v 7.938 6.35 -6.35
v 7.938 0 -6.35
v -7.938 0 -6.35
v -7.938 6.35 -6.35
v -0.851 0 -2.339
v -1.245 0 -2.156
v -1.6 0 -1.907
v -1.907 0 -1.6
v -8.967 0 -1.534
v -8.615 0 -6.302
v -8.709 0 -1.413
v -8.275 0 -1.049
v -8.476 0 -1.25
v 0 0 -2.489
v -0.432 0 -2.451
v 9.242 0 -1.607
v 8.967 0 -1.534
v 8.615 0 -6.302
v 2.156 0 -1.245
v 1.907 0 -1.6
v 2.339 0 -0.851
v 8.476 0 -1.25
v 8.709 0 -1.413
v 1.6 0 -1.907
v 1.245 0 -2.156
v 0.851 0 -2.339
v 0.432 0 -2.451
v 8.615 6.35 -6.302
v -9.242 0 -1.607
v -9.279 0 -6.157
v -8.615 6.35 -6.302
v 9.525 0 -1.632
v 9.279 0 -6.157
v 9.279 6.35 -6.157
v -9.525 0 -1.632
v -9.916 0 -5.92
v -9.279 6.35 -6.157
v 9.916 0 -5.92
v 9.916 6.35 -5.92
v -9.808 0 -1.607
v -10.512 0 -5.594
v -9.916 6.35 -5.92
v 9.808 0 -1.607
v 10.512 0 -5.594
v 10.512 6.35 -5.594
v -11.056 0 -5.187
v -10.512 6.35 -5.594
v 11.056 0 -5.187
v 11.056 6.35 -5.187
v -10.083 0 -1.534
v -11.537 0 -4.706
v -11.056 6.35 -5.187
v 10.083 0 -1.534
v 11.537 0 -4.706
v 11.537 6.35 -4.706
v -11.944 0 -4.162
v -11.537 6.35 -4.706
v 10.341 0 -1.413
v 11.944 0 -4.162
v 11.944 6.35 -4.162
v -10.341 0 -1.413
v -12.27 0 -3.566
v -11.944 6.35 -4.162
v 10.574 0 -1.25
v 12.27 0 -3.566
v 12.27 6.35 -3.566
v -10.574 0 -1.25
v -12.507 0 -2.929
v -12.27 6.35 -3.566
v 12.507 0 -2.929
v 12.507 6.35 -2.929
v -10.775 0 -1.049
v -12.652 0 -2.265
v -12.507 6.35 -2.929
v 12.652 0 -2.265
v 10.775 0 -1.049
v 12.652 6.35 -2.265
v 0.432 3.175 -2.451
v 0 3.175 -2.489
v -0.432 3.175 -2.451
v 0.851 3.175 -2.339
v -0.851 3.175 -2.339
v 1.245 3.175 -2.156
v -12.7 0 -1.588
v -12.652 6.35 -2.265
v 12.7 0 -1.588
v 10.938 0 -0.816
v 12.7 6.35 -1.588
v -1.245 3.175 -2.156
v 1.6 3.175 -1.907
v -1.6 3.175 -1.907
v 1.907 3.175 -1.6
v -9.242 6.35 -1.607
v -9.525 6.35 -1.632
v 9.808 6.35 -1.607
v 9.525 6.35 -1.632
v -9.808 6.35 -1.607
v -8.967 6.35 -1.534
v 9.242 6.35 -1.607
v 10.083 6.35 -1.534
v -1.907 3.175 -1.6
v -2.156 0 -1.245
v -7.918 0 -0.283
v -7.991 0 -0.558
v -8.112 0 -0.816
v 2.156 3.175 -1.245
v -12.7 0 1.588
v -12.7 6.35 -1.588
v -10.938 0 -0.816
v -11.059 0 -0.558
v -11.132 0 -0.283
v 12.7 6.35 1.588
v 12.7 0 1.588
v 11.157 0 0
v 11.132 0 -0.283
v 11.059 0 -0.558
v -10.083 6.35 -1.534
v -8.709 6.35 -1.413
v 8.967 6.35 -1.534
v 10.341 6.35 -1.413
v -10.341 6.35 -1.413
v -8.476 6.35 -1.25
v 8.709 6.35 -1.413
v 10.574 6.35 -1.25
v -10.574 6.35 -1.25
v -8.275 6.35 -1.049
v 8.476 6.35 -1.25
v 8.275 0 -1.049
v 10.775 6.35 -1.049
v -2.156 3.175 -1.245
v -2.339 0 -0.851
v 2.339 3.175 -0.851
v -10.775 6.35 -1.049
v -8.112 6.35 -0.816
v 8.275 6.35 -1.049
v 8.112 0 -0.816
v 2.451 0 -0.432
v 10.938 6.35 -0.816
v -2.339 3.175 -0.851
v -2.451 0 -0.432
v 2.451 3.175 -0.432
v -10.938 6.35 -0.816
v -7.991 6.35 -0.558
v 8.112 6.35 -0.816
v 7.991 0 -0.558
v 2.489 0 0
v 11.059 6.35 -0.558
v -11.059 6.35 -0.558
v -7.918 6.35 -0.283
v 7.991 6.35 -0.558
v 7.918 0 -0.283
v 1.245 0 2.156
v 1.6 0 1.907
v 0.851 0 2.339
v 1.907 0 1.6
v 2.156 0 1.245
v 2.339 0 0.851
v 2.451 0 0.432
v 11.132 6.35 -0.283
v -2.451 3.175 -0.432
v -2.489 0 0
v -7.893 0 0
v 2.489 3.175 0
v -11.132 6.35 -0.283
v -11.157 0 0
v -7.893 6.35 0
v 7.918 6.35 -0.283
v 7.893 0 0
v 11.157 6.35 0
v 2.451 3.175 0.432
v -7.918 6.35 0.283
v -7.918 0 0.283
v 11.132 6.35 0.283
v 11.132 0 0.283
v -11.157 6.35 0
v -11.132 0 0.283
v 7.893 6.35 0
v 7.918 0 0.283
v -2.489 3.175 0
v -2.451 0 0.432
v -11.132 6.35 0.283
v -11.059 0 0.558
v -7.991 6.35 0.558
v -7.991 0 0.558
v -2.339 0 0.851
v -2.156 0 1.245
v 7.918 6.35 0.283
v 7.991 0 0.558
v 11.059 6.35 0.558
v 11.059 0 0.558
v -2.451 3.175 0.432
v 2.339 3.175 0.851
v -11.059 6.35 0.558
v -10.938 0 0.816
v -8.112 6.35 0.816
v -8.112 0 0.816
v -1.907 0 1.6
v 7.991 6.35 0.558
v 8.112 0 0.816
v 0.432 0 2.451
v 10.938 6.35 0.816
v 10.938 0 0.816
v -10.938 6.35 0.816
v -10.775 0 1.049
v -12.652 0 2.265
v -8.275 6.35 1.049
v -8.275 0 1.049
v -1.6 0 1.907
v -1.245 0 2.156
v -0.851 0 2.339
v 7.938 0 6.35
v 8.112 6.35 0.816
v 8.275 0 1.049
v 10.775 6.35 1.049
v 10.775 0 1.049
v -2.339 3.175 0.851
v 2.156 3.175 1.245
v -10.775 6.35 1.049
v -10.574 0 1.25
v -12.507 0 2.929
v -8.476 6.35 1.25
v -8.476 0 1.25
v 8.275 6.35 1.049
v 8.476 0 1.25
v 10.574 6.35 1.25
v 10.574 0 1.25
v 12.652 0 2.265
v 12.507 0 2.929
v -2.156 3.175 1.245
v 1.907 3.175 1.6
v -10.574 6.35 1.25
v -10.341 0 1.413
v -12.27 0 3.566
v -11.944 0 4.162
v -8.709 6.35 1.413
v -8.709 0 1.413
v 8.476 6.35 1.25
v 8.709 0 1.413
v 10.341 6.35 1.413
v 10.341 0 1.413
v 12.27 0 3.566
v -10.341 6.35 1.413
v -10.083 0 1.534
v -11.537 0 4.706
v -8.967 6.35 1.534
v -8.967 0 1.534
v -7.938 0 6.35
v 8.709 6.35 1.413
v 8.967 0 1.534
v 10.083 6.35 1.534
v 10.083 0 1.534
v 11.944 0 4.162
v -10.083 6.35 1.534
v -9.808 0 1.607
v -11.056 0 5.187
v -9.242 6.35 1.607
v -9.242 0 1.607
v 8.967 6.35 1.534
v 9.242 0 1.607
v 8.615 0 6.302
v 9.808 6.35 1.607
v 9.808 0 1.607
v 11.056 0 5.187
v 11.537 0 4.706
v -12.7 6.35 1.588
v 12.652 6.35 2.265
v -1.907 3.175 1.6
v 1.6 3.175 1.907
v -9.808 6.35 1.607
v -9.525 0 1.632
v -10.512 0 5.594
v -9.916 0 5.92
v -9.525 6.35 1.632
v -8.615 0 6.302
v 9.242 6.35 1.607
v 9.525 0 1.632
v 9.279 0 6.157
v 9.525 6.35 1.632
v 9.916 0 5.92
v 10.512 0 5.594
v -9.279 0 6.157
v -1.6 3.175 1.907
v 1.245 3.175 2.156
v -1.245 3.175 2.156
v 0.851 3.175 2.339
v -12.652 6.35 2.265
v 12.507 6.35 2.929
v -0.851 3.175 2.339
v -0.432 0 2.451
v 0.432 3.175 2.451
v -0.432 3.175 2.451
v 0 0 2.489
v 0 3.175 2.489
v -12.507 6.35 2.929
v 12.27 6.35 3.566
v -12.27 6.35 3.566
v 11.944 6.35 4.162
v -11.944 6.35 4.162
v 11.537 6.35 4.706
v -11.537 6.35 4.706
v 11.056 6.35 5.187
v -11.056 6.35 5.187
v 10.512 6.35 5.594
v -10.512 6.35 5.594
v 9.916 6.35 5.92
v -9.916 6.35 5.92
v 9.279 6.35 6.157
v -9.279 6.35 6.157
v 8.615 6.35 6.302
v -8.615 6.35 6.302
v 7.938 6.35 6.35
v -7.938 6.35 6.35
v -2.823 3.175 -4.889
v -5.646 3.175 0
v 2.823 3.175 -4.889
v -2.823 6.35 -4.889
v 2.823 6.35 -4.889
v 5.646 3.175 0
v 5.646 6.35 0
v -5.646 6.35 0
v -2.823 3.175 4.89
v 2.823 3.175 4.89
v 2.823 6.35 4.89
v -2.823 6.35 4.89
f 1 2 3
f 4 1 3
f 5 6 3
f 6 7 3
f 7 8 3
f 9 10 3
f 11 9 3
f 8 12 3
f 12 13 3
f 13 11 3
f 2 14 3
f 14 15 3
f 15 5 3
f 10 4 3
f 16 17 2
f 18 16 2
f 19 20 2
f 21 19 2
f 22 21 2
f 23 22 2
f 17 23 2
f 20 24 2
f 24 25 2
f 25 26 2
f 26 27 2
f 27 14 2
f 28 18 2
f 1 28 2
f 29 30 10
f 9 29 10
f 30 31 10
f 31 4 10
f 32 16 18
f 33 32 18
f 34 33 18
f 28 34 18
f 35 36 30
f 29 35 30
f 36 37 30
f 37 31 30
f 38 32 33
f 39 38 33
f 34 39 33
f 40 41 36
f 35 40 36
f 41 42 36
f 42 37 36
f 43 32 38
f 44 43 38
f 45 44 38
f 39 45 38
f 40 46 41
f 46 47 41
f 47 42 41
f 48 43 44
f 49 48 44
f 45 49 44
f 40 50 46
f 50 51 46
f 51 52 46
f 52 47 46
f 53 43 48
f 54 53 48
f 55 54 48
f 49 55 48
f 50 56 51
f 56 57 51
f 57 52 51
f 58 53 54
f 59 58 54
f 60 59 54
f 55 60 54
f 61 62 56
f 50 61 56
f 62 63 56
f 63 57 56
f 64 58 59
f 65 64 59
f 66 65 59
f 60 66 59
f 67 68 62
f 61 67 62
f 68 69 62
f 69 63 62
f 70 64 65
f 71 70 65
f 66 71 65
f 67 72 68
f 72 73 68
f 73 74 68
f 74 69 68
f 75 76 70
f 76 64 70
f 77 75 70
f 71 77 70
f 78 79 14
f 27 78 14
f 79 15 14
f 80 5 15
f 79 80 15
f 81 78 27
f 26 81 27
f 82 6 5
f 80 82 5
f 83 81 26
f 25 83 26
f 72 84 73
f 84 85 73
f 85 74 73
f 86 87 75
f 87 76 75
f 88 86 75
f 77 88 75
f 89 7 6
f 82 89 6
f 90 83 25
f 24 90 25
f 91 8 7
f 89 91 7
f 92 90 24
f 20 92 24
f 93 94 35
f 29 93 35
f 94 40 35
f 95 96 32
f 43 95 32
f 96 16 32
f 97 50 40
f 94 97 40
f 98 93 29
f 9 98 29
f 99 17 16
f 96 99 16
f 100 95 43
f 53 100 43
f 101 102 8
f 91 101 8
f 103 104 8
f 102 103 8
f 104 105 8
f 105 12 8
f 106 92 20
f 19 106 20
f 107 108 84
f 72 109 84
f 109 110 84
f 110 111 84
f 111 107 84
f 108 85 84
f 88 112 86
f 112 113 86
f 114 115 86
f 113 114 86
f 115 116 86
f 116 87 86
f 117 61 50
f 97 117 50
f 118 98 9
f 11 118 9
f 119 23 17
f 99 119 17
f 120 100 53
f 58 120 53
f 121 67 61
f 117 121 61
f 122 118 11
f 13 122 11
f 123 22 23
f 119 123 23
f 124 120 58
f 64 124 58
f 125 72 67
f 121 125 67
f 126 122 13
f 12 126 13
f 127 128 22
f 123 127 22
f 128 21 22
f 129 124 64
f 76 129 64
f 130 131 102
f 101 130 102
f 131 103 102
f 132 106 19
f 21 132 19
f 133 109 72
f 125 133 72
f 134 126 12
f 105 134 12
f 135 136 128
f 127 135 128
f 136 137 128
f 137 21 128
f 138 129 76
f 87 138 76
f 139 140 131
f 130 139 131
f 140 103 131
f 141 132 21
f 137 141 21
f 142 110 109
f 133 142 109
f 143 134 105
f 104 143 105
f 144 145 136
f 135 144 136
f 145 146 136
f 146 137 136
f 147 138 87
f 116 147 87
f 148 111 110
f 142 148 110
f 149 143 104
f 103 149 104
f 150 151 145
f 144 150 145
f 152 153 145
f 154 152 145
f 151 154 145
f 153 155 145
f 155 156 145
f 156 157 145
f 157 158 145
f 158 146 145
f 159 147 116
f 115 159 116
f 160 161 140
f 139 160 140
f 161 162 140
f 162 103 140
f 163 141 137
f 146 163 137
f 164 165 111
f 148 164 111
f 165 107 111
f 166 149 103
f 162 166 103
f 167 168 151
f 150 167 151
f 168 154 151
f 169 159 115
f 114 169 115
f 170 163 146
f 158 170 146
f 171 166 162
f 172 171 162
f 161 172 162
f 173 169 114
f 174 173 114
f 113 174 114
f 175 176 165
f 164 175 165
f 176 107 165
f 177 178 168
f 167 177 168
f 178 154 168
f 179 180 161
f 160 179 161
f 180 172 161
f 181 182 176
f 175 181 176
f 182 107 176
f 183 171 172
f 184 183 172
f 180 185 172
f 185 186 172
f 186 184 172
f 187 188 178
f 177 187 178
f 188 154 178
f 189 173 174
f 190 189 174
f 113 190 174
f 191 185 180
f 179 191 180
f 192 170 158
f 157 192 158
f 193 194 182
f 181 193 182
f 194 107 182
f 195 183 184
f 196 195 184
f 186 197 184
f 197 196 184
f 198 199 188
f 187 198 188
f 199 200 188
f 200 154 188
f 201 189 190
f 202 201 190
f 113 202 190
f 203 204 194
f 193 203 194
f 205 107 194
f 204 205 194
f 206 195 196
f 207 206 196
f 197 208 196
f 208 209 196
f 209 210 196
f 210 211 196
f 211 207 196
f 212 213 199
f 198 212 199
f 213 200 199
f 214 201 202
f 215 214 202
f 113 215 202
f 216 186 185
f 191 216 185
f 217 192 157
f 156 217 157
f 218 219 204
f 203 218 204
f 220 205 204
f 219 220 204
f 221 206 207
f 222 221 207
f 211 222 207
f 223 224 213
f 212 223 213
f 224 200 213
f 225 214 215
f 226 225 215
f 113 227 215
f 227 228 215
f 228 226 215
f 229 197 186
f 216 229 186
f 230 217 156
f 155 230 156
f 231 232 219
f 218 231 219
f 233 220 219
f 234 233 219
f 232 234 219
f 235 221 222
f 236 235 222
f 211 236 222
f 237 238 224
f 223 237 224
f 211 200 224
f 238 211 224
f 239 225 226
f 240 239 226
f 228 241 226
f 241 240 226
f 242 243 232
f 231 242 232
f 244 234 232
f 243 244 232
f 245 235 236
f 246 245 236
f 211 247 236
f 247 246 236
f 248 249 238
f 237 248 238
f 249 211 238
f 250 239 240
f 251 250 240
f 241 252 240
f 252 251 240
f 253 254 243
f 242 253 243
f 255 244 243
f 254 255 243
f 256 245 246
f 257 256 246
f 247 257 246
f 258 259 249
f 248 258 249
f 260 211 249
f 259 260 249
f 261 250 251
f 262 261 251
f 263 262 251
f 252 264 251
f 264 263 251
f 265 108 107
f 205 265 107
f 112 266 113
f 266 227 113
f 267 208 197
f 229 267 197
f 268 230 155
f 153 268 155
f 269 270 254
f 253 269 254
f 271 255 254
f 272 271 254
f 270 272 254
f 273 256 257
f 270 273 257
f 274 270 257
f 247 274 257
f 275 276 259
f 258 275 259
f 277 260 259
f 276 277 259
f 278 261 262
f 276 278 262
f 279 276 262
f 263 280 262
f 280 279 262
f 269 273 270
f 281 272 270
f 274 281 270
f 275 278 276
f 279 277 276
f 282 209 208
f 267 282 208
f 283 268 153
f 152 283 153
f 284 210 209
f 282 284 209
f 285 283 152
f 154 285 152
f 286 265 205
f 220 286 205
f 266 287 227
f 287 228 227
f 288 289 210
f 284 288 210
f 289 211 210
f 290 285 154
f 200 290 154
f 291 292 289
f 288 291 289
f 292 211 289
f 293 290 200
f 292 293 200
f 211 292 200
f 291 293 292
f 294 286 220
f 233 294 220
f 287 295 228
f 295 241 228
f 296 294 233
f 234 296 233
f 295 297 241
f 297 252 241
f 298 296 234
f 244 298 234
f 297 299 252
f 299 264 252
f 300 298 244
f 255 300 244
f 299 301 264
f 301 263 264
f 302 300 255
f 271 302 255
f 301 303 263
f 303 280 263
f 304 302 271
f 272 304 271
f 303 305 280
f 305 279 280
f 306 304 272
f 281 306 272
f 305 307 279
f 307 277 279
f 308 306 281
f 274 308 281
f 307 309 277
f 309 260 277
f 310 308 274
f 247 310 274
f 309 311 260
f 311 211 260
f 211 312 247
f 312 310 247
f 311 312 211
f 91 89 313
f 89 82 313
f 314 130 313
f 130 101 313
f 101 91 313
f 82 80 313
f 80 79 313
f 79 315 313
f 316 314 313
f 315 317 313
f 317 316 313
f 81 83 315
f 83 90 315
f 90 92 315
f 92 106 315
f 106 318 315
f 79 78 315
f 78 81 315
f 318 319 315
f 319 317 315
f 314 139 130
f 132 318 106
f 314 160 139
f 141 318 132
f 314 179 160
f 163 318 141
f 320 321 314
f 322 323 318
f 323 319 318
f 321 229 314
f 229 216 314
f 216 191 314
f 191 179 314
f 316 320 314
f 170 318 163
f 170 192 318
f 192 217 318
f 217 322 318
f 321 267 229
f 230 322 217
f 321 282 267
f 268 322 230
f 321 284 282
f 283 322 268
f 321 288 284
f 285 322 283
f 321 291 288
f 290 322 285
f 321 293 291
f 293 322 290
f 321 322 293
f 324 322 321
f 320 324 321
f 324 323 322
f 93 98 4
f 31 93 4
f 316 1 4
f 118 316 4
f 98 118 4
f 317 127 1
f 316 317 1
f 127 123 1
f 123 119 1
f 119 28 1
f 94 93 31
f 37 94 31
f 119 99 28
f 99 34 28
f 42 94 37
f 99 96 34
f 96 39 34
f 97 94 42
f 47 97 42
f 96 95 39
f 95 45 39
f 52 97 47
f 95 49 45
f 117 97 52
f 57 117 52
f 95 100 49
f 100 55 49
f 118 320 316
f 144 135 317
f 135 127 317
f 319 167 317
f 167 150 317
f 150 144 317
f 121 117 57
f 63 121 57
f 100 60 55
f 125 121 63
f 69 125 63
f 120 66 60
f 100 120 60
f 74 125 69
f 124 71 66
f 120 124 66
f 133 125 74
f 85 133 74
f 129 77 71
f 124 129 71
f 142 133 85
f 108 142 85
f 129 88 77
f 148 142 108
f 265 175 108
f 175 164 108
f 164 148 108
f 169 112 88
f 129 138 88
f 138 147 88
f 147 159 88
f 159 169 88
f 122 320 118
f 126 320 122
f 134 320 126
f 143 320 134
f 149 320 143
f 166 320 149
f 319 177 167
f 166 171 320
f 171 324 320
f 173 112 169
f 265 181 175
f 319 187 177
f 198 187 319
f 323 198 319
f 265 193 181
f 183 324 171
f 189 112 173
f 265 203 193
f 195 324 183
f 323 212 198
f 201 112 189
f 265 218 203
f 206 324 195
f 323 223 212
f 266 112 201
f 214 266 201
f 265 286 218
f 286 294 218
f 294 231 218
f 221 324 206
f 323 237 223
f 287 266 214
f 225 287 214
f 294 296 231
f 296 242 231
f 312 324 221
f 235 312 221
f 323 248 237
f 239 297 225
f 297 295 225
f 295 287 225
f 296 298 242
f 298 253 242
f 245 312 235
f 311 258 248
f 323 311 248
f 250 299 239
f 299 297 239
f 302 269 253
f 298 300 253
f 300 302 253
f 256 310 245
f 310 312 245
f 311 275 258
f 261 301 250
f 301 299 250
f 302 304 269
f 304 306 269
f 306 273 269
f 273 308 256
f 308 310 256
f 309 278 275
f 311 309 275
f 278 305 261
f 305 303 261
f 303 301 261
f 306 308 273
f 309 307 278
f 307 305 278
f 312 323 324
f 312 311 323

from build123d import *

# Parameters (mm, degrees)
SKETCH1_W           = 25.4
SKETCH1_H           = 12.7
SKETCH1_R           = 1.63195
SKETCH1_R_2         = 2.4892
BOSS_EXTRUDE1_DEPTH = 3.175
SKETCH1_3_W         = 25.4
SKETCH1_3_H         = 12.7
SKETCH1_3_R         = 1.63195
BOSS_EXTRUDE2_DEPTH = 6.35
FILLET1_R           = 4.7625


with BuildPart() as part:
    # Sketch1 → Boss-Extrude1 (new body)
    # profile 1 of 2: a face of its own
    with BuildSketch(Plane(origin=(0, 0, 0), x_dir=(1, 0, 0), z_dir=(0, 1, 0))):
        Rectangle(SKETCH1_W, SKETCH1_H)
        with Locations(Location((9.525, 0, 0), (0, 0, 270))):
            Circle(SKETCH1_R, mode=Mode.SUBTRACT)
        with Locations(Location((-9.525, 0, 0), (0, 0, 270))):
            Circle(SKETCH1_R, mode=Mode.SUBTRACT)
        Polygon((2.822954141, -4.8895), (5.645908282, 0), (2.822954141, 4.8895), (-2.822954141, 4.8895), (-5.645908282, 0), (-2.822954141, -4.8895), align=None, mode=Mode.SUBTRACT)
    # profile 2 of 2: a face of its own
    with BuildSketch(Plane(origin=(0, 0, 0), x_dir=(1, 0, 0), z_dir=(0, 1, 0))):
        Polygon((-2.822954141, -4.8895), (2.822954141, -4.8895), (5.645908282, 0), (2.822954141, 4.8895), (-2.822954141, 4.8895), (-5.645908282, 0), align=None)
        with Locations(Location((0, 0, 0), (0, 0, 270))):
            Circle(SKETCH1_R_2, mode=Mode.SUBTRACT)
    extrude(amount=BOSS_EXTRUDE1_DEPTH)

    # Sketch1<3> → Boss-Extrude2 (add)
    with BuildSketch(Plane(origin=(0, 0, 0), x_dir=(1, 0, 0), z_dir=(0, 1, 0))):
        Rectangle(SKETCH1_3_W, SKETCH1_3_H)
        with Locations(Location((9.525, 0, 0), (0, 0, 270))):
            Circle(SKETCH1_3_R, mode=Mode.SUBTRACT)
        with Locations(Location((-9.525, 0, 0), (0, 0, 270))):
            Circle(SKETCH1_3_R, mode=Mode.SUBTRACT)
        Polygon((2.822954141, -4.8895), (5.645908282, 0), (2.822954141, 4.8895), (-2.822954141, 4.8895), (-5.645908282, 0), (-2.822954141, -4.8895), align=None, mode=Mode.SUBTRACT)
    extrude(amount=BOSS_EXTRUDE2_DEPTH)

    # Fillet1
    fillet1_edges = [part.edges().sort_by_distance(p)[0] for p in [
        (12.7, 3.175, 6.35),
        (-12.7, 3.175, 6.35),
        (-12.7, 3.175, -6.35),
        (12.7, 3.175, -6.35),
    ]]
    fillet(fillet1_edges, radius=FILLET1_R)


solid = part.part
